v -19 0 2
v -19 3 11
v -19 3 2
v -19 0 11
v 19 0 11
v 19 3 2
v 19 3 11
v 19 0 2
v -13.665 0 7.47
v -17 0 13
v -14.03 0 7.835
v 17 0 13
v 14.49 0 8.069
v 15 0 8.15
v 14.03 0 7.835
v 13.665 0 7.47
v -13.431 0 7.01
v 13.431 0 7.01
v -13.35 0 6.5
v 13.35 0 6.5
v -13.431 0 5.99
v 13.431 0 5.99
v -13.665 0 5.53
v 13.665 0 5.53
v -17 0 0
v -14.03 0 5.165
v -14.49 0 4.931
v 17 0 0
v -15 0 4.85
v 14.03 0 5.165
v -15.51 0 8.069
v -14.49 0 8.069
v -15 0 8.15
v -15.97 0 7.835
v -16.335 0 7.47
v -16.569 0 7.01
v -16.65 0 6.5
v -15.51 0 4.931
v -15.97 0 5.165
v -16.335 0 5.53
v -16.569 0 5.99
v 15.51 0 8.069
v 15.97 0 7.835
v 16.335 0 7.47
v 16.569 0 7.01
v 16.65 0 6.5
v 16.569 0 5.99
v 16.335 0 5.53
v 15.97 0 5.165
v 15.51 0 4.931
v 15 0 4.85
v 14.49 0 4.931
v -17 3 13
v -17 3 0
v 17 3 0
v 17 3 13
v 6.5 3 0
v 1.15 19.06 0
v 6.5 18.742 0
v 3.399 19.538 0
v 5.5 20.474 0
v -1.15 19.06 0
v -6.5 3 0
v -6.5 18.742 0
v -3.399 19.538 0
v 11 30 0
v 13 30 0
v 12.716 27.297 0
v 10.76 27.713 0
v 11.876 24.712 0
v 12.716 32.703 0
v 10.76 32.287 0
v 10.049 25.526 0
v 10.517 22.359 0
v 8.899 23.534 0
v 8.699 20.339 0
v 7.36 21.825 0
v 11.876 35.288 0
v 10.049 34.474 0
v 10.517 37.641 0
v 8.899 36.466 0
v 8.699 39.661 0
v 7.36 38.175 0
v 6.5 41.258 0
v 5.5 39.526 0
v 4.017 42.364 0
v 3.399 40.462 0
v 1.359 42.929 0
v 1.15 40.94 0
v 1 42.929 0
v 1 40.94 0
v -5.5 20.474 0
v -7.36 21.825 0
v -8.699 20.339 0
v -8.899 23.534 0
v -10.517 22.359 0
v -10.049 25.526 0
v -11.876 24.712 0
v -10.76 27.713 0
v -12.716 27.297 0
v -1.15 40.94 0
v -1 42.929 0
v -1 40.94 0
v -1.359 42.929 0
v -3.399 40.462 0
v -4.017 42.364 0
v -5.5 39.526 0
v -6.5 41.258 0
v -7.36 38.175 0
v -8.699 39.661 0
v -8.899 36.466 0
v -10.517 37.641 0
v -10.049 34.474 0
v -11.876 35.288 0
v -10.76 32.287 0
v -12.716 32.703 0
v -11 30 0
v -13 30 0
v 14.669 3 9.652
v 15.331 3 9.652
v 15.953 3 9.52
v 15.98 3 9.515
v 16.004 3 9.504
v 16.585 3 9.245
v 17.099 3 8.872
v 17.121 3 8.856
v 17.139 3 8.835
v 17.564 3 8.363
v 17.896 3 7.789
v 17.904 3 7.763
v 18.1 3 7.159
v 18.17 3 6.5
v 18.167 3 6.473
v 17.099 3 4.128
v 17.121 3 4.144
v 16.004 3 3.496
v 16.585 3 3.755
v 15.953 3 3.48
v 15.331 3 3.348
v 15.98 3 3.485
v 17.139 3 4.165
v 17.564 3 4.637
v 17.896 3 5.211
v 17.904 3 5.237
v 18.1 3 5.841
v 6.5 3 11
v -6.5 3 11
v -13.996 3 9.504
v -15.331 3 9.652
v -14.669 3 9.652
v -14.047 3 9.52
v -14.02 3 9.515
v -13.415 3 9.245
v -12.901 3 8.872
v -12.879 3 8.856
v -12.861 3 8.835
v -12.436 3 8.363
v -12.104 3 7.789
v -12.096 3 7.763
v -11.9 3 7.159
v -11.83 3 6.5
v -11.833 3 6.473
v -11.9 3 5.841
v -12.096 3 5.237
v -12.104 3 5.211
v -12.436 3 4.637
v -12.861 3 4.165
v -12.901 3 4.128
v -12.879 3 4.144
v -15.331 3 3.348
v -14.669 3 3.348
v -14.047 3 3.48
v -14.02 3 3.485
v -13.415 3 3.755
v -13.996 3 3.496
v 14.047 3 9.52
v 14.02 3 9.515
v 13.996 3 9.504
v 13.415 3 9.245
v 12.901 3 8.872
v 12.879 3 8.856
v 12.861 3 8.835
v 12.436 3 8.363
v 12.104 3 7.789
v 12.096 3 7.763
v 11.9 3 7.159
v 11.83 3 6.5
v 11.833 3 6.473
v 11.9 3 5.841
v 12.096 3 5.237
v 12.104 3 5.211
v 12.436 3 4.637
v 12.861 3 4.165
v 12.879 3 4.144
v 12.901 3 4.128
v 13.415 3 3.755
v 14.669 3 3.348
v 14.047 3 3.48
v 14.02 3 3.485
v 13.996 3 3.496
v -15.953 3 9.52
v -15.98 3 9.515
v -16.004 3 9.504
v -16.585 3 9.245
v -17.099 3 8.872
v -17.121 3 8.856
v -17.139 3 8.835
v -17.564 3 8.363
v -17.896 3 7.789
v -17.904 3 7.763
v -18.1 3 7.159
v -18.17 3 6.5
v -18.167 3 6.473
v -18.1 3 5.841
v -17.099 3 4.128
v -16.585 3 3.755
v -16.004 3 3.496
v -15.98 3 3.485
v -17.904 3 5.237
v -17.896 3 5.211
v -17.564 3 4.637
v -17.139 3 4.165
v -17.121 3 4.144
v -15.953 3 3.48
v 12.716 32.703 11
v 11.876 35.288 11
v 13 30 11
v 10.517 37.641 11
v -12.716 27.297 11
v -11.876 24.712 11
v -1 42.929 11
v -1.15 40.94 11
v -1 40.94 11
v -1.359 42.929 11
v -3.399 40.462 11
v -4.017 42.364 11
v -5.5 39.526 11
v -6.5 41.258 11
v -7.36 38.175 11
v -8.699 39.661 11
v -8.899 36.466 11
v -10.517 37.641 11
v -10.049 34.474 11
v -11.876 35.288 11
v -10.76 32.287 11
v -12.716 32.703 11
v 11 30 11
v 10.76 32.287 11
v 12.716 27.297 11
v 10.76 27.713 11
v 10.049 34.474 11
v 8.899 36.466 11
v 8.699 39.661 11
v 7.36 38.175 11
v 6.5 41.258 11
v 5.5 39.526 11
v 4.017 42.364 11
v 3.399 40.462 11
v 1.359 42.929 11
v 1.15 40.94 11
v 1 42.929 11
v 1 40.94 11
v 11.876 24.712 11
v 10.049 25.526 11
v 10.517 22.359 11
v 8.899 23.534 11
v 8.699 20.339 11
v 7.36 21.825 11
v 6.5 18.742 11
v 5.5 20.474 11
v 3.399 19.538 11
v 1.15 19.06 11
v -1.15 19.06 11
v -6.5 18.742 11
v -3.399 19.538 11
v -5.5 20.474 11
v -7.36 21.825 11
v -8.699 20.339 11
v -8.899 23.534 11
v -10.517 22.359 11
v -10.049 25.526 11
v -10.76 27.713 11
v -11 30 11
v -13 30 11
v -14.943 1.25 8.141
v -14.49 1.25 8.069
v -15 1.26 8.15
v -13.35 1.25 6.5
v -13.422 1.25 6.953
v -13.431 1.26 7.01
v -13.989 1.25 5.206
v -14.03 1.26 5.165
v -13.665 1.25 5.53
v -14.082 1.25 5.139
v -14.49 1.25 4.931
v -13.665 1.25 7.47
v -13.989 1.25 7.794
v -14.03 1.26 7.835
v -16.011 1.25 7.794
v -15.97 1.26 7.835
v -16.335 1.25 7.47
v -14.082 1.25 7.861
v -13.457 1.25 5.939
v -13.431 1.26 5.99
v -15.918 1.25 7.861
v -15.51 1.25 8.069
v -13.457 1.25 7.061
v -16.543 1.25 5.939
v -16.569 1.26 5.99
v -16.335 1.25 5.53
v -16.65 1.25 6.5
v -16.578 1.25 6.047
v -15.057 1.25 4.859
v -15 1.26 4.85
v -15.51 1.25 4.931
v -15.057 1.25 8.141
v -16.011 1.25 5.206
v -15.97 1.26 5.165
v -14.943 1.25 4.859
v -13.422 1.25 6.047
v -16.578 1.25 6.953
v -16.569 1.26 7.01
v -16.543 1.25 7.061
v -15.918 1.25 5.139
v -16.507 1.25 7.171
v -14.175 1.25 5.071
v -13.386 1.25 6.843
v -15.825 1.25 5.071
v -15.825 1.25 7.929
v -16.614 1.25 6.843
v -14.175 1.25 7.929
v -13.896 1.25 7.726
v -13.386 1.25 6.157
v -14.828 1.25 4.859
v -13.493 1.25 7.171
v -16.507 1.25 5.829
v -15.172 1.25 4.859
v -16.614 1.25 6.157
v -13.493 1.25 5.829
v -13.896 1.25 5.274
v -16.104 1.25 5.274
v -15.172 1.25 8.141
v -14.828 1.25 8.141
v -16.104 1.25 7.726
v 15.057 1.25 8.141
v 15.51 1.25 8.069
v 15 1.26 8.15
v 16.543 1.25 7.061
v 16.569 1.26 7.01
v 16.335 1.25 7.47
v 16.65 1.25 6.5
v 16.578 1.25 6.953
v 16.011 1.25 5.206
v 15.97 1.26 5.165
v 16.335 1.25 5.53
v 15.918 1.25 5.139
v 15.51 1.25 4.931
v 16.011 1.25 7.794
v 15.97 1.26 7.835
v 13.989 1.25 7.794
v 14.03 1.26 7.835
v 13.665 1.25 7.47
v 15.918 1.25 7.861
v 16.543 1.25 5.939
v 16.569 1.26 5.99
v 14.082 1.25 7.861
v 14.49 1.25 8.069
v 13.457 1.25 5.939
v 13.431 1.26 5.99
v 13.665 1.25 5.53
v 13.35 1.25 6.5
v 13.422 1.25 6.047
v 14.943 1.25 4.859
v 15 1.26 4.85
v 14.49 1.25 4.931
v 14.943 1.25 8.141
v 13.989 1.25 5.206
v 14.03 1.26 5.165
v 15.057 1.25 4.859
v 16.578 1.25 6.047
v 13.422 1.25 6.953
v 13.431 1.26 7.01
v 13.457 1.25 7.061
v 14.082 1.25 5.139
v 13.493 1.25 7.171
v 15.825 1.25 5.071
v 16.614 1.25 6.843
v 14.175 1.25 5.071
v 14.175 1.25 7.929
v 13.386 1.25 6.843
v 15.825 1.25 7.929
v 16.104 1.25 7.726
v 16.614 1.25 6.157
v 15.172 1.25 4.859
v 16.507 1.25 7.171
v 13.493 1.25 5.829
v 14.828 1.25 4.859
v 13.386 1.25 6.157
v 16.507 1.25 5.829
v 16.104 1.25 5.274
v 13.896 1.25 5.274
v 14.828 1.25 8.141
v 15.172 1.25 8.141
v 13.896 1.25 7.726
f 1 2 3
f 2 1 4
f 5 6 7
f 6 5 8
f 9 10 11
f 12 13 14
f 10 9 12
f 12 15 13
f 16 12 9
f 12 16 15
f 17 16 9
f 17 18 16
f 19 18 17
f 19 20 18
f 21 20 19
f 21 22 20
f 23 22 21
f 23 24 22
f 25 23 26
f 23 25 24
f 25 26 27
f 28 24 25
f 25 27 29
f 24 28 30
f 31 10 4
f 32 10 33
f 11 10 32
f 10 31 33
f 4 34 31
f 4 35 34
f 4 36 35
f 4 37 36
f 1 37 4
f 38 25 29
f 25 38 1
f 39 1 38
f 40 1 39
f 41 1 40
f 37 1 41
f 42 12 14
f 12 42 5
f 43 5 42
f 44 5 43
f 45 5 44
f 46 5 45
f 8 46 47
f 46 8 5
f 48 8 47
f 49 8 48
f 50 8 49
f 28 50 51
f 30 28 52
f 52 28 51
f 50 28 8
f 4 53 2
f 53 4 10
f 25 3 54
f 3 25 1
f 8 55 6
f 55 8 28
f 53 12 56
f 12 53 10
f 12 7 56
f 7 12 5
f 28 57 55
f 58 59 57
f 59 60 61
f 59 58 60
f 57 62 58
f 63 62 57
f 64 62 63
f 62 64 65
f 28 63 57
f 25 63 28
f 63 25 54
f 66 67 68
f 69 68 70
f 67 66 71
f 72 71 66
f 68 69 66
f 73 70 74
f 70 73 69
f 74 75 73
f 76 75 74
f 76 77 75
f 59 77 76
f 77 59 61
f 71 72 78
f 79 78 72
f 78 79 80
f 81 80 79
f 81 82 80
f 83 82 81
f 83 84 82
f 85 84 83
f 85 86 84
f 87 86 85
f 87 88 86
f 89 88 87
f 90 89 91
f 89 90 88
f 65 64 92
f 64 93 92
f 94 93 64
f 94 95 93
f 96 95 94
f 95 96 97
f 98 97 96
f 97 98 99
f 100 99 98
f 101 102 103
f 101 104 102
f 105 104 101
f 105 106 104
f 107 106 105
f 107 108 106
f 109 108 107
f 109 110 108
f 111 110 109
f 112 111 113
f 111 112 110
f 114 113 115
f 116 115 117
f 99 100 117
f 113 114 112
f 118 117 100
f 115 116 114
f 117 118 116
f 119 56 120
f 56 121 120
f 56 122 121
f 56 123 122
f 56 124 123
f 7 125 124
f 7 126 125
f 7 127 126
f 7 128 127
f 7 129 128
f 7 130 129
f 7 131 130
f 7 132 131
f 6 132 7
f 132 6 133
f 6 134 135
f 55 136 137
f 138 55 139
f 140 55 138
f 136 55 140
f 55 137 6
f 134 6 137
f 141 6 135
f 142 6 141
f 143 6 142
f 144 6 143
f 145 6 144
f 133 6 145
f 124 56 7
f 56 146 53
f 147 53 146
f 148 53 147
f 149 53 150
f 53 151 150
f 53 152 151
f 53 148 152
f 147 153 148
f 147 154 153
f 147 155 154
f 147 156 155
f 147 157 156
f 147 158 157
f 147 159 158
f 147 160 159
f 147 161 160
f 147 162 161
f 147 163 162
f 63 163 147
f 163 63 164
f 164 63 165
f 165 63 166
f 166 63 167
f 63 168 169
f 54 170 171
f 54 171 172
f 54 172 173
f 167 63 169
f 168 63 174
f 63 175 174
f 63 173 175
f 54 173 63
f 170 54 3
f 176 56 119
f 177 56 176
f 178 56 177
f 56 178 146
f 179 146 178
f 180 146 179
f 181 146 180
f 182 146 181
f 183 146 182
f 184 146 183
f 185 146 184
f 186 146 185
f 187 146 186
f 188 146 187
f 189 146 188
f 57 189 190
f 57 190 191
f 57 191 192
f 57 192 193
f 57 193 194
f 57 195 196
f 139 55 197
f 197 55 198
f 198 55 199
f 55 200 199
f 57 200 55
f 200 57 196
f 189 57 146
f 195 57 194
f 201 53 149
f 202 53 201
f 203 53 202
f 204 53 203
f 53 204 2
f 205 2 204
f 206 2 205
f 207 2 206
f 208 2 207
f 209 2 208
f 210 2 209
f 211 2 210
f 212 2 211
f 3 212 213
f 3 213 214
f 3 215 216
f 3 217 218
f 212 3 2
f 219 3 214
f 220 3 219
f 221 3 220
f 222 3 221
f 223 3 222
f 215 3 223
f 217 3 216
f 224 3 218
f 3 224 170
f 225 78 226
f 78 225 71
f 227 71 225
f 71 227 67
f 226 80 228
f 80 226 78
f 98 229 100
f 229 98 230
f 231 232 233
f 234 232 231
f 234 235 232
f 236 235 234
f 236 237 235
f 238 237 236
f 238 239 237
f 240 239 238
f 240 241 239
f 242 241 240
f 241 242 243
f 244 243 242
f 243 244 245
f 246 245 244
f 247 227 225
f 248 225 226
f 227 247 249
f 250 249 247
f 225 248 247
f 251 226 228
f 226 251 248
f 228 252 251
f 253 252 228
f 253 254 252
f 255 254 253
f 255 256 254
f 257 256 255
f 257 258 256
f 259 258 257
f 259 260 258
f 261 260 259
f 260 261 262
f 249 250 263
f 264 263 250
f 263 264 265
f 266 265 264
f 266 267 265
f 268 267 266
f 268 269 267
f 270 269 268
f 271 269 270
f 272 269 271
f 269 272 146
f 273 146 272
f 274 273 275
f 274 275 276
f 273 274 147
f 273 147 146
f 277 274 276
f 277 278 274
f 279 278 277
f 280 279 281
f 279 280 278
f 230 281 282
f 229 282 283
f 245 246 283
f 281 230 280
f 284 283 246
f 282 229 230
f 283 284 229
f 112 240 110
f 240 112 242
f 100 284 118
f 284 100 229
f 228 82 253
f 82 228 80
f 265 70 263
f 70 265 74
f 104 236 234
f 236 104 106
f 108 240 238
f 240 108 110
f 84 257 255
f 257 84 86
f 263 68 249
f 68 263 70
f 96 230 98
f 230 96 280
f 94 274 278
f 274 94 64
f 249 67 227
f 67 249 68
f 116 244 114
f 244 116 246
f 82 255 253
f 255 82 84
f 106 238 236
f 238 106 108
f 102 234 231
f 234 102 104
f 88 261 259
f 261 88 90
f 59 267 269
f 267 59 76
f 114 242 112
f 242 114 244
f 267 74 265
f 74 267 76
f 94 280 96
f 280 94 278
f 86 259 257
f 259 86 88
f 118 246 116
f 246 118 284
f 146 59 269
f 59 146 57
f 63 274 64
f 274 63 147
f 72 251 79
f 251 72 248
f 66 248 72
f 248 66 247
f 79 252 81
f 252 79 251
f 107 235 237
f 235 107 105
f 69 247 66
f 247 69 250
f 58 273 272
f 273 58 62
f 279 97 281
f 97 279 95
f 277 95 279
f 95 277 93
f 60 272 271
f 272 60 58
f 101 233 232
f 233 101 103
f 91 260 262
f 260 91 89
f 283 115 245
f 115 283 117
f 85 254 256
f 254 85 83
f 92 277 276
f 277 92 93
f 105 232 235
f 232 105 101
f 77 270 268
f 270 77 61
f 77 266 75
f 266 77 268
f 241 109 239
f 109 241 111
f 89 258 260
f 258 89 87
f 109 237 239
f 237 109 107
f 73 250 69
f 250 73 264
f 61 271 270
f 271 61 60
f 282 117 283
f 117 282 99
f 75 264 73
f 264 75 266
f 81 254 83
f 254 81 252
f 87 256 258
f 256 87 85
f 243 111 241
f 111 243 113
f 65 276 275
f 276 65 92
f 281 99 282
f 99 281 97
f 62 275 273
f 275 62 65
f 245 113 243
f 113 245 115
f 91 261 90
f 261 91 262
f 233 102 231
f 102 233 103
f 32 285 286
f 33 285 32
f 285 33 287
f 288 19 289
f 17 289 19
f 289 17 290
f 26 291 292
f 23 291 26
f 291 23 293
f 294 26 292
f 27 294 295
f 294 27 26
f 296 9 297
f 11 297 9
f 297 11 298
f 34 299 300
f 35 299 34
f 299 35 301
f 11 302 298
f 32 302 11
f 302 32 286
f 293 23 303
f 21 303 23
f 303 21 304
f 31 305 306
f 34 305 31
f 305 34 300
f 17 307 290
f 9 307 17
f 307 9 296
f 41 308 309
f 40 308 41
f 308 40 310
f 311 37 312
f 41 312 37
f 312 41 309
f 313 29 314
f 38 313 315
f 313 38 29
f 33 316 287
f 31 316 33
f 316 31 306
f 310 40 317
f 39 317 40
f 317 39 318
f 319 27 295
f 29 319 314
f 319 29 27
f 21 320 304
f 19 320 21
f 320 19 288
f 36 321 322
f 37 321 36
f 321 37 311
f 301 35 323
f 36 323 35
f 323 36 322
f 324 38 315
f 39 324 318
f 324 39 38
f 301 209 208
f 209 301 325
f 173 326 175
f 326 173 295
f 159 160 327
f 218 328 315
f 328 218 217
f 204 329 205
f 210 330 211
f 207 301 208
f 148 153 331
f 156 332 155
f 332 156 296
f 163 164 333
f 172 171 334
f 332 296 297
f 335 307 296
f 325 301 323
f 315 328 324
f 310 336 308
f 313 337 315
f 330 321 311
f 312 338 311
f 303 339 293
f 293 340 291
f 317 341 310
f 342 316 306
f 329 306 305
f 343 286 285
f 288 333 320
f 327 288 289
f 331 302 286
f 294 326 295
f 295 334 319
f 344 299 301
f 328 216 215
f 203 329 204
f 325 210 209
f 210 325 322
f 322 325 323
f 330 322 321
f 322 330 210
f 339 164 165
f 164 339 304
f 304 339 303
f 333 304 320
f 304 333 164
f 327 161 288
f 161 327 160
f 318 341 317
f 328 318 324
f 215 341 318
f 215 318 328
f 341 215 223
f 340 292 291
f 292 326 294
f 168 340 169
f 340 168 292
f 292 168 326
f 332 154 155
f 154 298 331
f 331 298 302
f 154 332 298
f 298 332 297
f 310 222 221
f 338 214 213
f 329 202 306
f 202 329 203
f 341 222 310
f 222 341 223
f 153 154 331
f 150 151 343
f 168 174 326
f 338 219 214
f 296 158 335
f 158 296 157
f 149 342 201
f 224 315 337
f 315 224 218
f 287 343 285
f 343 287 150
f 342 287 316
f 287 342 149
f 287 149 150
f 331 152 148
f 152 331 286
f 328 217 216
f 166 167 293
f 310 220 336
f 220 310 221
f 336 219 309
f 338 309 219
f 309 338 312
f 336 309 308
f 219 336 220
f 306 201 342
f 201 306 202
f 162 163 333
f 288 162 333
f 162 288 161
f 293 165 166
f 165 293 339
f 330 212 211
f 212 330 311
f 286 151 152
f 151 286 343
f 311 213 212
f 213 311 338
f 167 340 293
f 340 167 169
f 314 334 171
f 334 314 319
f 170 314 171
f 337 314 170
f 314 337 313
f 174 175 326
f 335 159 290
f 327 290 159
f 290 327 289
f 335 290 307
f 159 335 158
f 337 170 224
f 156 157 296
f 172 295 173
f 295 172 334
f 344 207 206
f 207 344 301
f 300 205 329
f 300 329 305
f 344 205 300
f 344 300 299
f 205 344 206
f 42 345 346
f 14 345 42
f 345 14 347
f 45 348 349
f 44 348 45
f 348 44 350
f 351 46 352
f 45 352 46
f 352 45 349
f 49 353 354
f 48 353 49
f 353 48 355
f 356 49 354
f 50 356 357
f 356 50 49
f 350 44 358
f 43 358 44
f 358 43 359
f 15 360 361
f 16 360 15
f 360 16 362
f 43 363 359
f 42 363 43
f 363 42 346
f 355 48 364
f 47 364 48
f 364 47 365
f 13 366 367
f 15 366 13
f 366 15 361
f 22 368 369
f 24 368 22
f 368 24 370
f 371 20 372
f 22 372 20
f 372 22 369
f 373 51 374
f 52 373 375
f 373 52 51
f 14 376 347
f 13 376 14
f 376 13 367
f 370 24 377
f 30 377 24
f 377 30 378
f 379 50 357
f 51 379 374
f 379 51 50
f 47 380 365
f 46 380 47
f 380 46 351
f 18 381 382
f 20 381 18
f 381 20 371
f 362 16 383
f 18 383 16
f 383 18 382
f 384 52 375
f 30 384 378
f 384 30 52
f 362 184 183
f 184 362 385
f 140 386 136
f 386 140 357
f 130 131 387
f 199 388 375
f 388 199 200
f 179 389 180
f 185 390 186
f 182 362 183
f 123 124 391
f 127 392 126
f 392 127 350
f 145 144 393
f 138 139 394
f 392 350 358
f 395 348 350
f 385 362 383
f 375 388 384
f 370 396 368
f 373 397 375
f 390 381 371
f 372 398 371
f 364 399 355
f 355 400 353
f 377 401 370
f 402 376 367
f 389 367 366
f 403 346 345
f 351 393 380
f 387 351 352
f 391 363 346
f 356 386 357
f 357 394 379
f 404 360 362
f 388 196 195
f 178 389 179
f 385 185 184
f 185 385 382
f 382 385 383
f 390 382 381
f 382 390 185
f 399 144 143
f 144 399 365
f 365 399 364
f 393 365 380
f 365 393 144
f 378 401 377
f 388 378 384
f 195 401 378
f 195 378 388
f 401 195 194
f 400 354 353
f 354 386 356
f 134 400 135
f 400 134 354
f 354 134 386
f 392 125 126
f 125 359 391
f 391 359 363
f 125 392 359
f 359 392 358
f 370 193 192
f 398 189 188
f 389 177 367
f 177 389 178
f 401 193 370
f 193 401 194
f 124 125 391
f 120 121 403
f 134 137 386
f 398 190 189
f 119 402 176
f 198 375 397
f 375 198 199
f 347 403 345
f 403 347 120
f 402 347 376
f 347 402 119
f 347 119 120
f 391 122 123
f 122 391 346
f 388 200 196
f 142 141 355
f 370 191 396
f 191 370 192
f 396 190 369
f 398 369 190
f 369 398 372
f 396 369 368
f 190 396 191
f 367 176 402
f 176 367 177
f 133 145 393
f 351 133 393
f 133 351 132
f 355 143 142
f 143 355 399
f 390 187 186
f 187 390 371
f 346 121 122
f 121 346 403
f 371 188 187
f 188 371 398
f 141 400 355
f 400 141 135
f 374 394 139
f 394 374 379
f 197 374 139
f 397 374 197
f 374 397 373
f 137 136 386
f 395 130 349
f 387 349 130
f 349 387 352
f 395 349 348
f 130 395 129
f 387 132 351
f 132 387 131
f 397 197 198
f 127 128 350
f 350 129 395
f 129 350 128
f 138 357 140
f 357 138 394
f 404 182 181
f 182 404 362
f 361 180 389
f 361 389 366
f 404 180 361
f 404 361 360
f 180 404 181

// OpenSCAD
// file: ../Dollo/NEW_long_ties/globals.scad
/*
Most things in this file is represented as one millimeter, so keep that in mind while changing things.
Some of the setting are not mm but at variables that you can set, such as 2*x=2x and you are setting what x is.
I will try to specify when things are variables and not exact measurements.
*/

// printer slop
slop = 0.15;

obj_leg = 30;
leg_length = 5.5;
small_number = 0.001;
metal_core_rode_global = 5;


///////////////// number of holes /////////////////////
z_hole_number = 8;
other_holes = 8;

///////////////// Pins /////////////////////

//pins that poke out
ball_size = 10;
pin_height = 20;
pin_diameter = 6;


//holes
hole_ball_size = ball_size;
hole_pin_height = pin_height;
hole_pin_diameter = pin_diameter;

///////////////// Z THINGS /////////////////////

berring_slot_width = 7.5;
berring_slot_depth = 6.5;
metal_core_rode = 5;

///////////////// X THINGS /////////////////////

//male dove tails
male_dove_max_width=8;
male_dove_min_width=5;
male_dove_depth=5;
male_dove_height=obj_leg/2;

function scaled_male_dove_max_width() = male_dove_max_width - slop;
function scaled_male_dove_min_width() = male_dove_min_width - slop;
function scaled_male_dove_depth() = male_dove_depth - slop;

//female dove tails, this is found on the y mounts
girl_max_width=11;
girl_min_width=5;
girl_depth=5;
girl_height=obj_leg;


///////////////// Y THINGS /////////////////////
/*
The Y is so normal that all of those global variables at the top should change all of the setting in it, this section is set her incase there are variables set in the future development of this project.
*/

// stepper
motor_side_length = 43.2;
motor_bolt_hole_distance = 31;
motor_center_hole = 23;
motor_shaft_dia = 5;
motor_shaft_hole_dia = 5+2*slop;

// bolts etc.
bolt_hole_dia = 3+2*slop;
bolt_head_hole_dia = 5.8;

m4_bolt_hole_dia = 4+2*slop;
m4_bolt_head_hole_dia = 6.8+2*slop;


m3_nut_side = 5.65;
m3_nut_height = 2.3;
m4_nut_side = 6.85;
m4_nut_height = 3.1;

// threaded rod
lifter_rod_diam = 9.86;
hole_threaded_rod = lifter_rod_diam+2*slop;

// for the extensions
metal_rod_size = 9;
// main file
use <../Dollo/NEW_long_ties/include.scad>;


speaker_mount();


module speaker_mount() {
    difference() {
        union() {
            translate([0, 3/2, 13/2])
            rotate([90, 0, 0])
            chamfered_cube_side(
                38, 13, 3, 2, center=true
            );

            translate([0, 30, 0])
            cylinder(d=26, h=11, $fn=30);

            translate([0, 20/2, 11/2])
            cube([13, 20, 11], center=true);
        }

        translate([0, 30, 0])
        cylinder(d=22, h=70, center=true, $fn=30);

        translate([0, 40, 0])
        cube([2, 10, 70], center=true);

        translate([-15, 0, 13/2])
        rotate([90, 0, 0])
        cylinder(d=3.3, h=20, center=true, $fn=20);

        translate([-15, 2.2, 13/2])
        rotate([90, 0, 0])
        cylinder(d1=6.6, d2=3.3, h=1.9, center=true, $fn=30);

        translate([15, 0, 13/2])
        rotate([90, 0, 0])
        cylinder(d=3.3, h=20, center=true, $fn=20);

        translate([15, 2.2, 13/2])
        rotate([90, 0, 0])
        cylinder(d1=6.6, d2=3.3, h=1.9, center=true, $fn=30);
    }
}
